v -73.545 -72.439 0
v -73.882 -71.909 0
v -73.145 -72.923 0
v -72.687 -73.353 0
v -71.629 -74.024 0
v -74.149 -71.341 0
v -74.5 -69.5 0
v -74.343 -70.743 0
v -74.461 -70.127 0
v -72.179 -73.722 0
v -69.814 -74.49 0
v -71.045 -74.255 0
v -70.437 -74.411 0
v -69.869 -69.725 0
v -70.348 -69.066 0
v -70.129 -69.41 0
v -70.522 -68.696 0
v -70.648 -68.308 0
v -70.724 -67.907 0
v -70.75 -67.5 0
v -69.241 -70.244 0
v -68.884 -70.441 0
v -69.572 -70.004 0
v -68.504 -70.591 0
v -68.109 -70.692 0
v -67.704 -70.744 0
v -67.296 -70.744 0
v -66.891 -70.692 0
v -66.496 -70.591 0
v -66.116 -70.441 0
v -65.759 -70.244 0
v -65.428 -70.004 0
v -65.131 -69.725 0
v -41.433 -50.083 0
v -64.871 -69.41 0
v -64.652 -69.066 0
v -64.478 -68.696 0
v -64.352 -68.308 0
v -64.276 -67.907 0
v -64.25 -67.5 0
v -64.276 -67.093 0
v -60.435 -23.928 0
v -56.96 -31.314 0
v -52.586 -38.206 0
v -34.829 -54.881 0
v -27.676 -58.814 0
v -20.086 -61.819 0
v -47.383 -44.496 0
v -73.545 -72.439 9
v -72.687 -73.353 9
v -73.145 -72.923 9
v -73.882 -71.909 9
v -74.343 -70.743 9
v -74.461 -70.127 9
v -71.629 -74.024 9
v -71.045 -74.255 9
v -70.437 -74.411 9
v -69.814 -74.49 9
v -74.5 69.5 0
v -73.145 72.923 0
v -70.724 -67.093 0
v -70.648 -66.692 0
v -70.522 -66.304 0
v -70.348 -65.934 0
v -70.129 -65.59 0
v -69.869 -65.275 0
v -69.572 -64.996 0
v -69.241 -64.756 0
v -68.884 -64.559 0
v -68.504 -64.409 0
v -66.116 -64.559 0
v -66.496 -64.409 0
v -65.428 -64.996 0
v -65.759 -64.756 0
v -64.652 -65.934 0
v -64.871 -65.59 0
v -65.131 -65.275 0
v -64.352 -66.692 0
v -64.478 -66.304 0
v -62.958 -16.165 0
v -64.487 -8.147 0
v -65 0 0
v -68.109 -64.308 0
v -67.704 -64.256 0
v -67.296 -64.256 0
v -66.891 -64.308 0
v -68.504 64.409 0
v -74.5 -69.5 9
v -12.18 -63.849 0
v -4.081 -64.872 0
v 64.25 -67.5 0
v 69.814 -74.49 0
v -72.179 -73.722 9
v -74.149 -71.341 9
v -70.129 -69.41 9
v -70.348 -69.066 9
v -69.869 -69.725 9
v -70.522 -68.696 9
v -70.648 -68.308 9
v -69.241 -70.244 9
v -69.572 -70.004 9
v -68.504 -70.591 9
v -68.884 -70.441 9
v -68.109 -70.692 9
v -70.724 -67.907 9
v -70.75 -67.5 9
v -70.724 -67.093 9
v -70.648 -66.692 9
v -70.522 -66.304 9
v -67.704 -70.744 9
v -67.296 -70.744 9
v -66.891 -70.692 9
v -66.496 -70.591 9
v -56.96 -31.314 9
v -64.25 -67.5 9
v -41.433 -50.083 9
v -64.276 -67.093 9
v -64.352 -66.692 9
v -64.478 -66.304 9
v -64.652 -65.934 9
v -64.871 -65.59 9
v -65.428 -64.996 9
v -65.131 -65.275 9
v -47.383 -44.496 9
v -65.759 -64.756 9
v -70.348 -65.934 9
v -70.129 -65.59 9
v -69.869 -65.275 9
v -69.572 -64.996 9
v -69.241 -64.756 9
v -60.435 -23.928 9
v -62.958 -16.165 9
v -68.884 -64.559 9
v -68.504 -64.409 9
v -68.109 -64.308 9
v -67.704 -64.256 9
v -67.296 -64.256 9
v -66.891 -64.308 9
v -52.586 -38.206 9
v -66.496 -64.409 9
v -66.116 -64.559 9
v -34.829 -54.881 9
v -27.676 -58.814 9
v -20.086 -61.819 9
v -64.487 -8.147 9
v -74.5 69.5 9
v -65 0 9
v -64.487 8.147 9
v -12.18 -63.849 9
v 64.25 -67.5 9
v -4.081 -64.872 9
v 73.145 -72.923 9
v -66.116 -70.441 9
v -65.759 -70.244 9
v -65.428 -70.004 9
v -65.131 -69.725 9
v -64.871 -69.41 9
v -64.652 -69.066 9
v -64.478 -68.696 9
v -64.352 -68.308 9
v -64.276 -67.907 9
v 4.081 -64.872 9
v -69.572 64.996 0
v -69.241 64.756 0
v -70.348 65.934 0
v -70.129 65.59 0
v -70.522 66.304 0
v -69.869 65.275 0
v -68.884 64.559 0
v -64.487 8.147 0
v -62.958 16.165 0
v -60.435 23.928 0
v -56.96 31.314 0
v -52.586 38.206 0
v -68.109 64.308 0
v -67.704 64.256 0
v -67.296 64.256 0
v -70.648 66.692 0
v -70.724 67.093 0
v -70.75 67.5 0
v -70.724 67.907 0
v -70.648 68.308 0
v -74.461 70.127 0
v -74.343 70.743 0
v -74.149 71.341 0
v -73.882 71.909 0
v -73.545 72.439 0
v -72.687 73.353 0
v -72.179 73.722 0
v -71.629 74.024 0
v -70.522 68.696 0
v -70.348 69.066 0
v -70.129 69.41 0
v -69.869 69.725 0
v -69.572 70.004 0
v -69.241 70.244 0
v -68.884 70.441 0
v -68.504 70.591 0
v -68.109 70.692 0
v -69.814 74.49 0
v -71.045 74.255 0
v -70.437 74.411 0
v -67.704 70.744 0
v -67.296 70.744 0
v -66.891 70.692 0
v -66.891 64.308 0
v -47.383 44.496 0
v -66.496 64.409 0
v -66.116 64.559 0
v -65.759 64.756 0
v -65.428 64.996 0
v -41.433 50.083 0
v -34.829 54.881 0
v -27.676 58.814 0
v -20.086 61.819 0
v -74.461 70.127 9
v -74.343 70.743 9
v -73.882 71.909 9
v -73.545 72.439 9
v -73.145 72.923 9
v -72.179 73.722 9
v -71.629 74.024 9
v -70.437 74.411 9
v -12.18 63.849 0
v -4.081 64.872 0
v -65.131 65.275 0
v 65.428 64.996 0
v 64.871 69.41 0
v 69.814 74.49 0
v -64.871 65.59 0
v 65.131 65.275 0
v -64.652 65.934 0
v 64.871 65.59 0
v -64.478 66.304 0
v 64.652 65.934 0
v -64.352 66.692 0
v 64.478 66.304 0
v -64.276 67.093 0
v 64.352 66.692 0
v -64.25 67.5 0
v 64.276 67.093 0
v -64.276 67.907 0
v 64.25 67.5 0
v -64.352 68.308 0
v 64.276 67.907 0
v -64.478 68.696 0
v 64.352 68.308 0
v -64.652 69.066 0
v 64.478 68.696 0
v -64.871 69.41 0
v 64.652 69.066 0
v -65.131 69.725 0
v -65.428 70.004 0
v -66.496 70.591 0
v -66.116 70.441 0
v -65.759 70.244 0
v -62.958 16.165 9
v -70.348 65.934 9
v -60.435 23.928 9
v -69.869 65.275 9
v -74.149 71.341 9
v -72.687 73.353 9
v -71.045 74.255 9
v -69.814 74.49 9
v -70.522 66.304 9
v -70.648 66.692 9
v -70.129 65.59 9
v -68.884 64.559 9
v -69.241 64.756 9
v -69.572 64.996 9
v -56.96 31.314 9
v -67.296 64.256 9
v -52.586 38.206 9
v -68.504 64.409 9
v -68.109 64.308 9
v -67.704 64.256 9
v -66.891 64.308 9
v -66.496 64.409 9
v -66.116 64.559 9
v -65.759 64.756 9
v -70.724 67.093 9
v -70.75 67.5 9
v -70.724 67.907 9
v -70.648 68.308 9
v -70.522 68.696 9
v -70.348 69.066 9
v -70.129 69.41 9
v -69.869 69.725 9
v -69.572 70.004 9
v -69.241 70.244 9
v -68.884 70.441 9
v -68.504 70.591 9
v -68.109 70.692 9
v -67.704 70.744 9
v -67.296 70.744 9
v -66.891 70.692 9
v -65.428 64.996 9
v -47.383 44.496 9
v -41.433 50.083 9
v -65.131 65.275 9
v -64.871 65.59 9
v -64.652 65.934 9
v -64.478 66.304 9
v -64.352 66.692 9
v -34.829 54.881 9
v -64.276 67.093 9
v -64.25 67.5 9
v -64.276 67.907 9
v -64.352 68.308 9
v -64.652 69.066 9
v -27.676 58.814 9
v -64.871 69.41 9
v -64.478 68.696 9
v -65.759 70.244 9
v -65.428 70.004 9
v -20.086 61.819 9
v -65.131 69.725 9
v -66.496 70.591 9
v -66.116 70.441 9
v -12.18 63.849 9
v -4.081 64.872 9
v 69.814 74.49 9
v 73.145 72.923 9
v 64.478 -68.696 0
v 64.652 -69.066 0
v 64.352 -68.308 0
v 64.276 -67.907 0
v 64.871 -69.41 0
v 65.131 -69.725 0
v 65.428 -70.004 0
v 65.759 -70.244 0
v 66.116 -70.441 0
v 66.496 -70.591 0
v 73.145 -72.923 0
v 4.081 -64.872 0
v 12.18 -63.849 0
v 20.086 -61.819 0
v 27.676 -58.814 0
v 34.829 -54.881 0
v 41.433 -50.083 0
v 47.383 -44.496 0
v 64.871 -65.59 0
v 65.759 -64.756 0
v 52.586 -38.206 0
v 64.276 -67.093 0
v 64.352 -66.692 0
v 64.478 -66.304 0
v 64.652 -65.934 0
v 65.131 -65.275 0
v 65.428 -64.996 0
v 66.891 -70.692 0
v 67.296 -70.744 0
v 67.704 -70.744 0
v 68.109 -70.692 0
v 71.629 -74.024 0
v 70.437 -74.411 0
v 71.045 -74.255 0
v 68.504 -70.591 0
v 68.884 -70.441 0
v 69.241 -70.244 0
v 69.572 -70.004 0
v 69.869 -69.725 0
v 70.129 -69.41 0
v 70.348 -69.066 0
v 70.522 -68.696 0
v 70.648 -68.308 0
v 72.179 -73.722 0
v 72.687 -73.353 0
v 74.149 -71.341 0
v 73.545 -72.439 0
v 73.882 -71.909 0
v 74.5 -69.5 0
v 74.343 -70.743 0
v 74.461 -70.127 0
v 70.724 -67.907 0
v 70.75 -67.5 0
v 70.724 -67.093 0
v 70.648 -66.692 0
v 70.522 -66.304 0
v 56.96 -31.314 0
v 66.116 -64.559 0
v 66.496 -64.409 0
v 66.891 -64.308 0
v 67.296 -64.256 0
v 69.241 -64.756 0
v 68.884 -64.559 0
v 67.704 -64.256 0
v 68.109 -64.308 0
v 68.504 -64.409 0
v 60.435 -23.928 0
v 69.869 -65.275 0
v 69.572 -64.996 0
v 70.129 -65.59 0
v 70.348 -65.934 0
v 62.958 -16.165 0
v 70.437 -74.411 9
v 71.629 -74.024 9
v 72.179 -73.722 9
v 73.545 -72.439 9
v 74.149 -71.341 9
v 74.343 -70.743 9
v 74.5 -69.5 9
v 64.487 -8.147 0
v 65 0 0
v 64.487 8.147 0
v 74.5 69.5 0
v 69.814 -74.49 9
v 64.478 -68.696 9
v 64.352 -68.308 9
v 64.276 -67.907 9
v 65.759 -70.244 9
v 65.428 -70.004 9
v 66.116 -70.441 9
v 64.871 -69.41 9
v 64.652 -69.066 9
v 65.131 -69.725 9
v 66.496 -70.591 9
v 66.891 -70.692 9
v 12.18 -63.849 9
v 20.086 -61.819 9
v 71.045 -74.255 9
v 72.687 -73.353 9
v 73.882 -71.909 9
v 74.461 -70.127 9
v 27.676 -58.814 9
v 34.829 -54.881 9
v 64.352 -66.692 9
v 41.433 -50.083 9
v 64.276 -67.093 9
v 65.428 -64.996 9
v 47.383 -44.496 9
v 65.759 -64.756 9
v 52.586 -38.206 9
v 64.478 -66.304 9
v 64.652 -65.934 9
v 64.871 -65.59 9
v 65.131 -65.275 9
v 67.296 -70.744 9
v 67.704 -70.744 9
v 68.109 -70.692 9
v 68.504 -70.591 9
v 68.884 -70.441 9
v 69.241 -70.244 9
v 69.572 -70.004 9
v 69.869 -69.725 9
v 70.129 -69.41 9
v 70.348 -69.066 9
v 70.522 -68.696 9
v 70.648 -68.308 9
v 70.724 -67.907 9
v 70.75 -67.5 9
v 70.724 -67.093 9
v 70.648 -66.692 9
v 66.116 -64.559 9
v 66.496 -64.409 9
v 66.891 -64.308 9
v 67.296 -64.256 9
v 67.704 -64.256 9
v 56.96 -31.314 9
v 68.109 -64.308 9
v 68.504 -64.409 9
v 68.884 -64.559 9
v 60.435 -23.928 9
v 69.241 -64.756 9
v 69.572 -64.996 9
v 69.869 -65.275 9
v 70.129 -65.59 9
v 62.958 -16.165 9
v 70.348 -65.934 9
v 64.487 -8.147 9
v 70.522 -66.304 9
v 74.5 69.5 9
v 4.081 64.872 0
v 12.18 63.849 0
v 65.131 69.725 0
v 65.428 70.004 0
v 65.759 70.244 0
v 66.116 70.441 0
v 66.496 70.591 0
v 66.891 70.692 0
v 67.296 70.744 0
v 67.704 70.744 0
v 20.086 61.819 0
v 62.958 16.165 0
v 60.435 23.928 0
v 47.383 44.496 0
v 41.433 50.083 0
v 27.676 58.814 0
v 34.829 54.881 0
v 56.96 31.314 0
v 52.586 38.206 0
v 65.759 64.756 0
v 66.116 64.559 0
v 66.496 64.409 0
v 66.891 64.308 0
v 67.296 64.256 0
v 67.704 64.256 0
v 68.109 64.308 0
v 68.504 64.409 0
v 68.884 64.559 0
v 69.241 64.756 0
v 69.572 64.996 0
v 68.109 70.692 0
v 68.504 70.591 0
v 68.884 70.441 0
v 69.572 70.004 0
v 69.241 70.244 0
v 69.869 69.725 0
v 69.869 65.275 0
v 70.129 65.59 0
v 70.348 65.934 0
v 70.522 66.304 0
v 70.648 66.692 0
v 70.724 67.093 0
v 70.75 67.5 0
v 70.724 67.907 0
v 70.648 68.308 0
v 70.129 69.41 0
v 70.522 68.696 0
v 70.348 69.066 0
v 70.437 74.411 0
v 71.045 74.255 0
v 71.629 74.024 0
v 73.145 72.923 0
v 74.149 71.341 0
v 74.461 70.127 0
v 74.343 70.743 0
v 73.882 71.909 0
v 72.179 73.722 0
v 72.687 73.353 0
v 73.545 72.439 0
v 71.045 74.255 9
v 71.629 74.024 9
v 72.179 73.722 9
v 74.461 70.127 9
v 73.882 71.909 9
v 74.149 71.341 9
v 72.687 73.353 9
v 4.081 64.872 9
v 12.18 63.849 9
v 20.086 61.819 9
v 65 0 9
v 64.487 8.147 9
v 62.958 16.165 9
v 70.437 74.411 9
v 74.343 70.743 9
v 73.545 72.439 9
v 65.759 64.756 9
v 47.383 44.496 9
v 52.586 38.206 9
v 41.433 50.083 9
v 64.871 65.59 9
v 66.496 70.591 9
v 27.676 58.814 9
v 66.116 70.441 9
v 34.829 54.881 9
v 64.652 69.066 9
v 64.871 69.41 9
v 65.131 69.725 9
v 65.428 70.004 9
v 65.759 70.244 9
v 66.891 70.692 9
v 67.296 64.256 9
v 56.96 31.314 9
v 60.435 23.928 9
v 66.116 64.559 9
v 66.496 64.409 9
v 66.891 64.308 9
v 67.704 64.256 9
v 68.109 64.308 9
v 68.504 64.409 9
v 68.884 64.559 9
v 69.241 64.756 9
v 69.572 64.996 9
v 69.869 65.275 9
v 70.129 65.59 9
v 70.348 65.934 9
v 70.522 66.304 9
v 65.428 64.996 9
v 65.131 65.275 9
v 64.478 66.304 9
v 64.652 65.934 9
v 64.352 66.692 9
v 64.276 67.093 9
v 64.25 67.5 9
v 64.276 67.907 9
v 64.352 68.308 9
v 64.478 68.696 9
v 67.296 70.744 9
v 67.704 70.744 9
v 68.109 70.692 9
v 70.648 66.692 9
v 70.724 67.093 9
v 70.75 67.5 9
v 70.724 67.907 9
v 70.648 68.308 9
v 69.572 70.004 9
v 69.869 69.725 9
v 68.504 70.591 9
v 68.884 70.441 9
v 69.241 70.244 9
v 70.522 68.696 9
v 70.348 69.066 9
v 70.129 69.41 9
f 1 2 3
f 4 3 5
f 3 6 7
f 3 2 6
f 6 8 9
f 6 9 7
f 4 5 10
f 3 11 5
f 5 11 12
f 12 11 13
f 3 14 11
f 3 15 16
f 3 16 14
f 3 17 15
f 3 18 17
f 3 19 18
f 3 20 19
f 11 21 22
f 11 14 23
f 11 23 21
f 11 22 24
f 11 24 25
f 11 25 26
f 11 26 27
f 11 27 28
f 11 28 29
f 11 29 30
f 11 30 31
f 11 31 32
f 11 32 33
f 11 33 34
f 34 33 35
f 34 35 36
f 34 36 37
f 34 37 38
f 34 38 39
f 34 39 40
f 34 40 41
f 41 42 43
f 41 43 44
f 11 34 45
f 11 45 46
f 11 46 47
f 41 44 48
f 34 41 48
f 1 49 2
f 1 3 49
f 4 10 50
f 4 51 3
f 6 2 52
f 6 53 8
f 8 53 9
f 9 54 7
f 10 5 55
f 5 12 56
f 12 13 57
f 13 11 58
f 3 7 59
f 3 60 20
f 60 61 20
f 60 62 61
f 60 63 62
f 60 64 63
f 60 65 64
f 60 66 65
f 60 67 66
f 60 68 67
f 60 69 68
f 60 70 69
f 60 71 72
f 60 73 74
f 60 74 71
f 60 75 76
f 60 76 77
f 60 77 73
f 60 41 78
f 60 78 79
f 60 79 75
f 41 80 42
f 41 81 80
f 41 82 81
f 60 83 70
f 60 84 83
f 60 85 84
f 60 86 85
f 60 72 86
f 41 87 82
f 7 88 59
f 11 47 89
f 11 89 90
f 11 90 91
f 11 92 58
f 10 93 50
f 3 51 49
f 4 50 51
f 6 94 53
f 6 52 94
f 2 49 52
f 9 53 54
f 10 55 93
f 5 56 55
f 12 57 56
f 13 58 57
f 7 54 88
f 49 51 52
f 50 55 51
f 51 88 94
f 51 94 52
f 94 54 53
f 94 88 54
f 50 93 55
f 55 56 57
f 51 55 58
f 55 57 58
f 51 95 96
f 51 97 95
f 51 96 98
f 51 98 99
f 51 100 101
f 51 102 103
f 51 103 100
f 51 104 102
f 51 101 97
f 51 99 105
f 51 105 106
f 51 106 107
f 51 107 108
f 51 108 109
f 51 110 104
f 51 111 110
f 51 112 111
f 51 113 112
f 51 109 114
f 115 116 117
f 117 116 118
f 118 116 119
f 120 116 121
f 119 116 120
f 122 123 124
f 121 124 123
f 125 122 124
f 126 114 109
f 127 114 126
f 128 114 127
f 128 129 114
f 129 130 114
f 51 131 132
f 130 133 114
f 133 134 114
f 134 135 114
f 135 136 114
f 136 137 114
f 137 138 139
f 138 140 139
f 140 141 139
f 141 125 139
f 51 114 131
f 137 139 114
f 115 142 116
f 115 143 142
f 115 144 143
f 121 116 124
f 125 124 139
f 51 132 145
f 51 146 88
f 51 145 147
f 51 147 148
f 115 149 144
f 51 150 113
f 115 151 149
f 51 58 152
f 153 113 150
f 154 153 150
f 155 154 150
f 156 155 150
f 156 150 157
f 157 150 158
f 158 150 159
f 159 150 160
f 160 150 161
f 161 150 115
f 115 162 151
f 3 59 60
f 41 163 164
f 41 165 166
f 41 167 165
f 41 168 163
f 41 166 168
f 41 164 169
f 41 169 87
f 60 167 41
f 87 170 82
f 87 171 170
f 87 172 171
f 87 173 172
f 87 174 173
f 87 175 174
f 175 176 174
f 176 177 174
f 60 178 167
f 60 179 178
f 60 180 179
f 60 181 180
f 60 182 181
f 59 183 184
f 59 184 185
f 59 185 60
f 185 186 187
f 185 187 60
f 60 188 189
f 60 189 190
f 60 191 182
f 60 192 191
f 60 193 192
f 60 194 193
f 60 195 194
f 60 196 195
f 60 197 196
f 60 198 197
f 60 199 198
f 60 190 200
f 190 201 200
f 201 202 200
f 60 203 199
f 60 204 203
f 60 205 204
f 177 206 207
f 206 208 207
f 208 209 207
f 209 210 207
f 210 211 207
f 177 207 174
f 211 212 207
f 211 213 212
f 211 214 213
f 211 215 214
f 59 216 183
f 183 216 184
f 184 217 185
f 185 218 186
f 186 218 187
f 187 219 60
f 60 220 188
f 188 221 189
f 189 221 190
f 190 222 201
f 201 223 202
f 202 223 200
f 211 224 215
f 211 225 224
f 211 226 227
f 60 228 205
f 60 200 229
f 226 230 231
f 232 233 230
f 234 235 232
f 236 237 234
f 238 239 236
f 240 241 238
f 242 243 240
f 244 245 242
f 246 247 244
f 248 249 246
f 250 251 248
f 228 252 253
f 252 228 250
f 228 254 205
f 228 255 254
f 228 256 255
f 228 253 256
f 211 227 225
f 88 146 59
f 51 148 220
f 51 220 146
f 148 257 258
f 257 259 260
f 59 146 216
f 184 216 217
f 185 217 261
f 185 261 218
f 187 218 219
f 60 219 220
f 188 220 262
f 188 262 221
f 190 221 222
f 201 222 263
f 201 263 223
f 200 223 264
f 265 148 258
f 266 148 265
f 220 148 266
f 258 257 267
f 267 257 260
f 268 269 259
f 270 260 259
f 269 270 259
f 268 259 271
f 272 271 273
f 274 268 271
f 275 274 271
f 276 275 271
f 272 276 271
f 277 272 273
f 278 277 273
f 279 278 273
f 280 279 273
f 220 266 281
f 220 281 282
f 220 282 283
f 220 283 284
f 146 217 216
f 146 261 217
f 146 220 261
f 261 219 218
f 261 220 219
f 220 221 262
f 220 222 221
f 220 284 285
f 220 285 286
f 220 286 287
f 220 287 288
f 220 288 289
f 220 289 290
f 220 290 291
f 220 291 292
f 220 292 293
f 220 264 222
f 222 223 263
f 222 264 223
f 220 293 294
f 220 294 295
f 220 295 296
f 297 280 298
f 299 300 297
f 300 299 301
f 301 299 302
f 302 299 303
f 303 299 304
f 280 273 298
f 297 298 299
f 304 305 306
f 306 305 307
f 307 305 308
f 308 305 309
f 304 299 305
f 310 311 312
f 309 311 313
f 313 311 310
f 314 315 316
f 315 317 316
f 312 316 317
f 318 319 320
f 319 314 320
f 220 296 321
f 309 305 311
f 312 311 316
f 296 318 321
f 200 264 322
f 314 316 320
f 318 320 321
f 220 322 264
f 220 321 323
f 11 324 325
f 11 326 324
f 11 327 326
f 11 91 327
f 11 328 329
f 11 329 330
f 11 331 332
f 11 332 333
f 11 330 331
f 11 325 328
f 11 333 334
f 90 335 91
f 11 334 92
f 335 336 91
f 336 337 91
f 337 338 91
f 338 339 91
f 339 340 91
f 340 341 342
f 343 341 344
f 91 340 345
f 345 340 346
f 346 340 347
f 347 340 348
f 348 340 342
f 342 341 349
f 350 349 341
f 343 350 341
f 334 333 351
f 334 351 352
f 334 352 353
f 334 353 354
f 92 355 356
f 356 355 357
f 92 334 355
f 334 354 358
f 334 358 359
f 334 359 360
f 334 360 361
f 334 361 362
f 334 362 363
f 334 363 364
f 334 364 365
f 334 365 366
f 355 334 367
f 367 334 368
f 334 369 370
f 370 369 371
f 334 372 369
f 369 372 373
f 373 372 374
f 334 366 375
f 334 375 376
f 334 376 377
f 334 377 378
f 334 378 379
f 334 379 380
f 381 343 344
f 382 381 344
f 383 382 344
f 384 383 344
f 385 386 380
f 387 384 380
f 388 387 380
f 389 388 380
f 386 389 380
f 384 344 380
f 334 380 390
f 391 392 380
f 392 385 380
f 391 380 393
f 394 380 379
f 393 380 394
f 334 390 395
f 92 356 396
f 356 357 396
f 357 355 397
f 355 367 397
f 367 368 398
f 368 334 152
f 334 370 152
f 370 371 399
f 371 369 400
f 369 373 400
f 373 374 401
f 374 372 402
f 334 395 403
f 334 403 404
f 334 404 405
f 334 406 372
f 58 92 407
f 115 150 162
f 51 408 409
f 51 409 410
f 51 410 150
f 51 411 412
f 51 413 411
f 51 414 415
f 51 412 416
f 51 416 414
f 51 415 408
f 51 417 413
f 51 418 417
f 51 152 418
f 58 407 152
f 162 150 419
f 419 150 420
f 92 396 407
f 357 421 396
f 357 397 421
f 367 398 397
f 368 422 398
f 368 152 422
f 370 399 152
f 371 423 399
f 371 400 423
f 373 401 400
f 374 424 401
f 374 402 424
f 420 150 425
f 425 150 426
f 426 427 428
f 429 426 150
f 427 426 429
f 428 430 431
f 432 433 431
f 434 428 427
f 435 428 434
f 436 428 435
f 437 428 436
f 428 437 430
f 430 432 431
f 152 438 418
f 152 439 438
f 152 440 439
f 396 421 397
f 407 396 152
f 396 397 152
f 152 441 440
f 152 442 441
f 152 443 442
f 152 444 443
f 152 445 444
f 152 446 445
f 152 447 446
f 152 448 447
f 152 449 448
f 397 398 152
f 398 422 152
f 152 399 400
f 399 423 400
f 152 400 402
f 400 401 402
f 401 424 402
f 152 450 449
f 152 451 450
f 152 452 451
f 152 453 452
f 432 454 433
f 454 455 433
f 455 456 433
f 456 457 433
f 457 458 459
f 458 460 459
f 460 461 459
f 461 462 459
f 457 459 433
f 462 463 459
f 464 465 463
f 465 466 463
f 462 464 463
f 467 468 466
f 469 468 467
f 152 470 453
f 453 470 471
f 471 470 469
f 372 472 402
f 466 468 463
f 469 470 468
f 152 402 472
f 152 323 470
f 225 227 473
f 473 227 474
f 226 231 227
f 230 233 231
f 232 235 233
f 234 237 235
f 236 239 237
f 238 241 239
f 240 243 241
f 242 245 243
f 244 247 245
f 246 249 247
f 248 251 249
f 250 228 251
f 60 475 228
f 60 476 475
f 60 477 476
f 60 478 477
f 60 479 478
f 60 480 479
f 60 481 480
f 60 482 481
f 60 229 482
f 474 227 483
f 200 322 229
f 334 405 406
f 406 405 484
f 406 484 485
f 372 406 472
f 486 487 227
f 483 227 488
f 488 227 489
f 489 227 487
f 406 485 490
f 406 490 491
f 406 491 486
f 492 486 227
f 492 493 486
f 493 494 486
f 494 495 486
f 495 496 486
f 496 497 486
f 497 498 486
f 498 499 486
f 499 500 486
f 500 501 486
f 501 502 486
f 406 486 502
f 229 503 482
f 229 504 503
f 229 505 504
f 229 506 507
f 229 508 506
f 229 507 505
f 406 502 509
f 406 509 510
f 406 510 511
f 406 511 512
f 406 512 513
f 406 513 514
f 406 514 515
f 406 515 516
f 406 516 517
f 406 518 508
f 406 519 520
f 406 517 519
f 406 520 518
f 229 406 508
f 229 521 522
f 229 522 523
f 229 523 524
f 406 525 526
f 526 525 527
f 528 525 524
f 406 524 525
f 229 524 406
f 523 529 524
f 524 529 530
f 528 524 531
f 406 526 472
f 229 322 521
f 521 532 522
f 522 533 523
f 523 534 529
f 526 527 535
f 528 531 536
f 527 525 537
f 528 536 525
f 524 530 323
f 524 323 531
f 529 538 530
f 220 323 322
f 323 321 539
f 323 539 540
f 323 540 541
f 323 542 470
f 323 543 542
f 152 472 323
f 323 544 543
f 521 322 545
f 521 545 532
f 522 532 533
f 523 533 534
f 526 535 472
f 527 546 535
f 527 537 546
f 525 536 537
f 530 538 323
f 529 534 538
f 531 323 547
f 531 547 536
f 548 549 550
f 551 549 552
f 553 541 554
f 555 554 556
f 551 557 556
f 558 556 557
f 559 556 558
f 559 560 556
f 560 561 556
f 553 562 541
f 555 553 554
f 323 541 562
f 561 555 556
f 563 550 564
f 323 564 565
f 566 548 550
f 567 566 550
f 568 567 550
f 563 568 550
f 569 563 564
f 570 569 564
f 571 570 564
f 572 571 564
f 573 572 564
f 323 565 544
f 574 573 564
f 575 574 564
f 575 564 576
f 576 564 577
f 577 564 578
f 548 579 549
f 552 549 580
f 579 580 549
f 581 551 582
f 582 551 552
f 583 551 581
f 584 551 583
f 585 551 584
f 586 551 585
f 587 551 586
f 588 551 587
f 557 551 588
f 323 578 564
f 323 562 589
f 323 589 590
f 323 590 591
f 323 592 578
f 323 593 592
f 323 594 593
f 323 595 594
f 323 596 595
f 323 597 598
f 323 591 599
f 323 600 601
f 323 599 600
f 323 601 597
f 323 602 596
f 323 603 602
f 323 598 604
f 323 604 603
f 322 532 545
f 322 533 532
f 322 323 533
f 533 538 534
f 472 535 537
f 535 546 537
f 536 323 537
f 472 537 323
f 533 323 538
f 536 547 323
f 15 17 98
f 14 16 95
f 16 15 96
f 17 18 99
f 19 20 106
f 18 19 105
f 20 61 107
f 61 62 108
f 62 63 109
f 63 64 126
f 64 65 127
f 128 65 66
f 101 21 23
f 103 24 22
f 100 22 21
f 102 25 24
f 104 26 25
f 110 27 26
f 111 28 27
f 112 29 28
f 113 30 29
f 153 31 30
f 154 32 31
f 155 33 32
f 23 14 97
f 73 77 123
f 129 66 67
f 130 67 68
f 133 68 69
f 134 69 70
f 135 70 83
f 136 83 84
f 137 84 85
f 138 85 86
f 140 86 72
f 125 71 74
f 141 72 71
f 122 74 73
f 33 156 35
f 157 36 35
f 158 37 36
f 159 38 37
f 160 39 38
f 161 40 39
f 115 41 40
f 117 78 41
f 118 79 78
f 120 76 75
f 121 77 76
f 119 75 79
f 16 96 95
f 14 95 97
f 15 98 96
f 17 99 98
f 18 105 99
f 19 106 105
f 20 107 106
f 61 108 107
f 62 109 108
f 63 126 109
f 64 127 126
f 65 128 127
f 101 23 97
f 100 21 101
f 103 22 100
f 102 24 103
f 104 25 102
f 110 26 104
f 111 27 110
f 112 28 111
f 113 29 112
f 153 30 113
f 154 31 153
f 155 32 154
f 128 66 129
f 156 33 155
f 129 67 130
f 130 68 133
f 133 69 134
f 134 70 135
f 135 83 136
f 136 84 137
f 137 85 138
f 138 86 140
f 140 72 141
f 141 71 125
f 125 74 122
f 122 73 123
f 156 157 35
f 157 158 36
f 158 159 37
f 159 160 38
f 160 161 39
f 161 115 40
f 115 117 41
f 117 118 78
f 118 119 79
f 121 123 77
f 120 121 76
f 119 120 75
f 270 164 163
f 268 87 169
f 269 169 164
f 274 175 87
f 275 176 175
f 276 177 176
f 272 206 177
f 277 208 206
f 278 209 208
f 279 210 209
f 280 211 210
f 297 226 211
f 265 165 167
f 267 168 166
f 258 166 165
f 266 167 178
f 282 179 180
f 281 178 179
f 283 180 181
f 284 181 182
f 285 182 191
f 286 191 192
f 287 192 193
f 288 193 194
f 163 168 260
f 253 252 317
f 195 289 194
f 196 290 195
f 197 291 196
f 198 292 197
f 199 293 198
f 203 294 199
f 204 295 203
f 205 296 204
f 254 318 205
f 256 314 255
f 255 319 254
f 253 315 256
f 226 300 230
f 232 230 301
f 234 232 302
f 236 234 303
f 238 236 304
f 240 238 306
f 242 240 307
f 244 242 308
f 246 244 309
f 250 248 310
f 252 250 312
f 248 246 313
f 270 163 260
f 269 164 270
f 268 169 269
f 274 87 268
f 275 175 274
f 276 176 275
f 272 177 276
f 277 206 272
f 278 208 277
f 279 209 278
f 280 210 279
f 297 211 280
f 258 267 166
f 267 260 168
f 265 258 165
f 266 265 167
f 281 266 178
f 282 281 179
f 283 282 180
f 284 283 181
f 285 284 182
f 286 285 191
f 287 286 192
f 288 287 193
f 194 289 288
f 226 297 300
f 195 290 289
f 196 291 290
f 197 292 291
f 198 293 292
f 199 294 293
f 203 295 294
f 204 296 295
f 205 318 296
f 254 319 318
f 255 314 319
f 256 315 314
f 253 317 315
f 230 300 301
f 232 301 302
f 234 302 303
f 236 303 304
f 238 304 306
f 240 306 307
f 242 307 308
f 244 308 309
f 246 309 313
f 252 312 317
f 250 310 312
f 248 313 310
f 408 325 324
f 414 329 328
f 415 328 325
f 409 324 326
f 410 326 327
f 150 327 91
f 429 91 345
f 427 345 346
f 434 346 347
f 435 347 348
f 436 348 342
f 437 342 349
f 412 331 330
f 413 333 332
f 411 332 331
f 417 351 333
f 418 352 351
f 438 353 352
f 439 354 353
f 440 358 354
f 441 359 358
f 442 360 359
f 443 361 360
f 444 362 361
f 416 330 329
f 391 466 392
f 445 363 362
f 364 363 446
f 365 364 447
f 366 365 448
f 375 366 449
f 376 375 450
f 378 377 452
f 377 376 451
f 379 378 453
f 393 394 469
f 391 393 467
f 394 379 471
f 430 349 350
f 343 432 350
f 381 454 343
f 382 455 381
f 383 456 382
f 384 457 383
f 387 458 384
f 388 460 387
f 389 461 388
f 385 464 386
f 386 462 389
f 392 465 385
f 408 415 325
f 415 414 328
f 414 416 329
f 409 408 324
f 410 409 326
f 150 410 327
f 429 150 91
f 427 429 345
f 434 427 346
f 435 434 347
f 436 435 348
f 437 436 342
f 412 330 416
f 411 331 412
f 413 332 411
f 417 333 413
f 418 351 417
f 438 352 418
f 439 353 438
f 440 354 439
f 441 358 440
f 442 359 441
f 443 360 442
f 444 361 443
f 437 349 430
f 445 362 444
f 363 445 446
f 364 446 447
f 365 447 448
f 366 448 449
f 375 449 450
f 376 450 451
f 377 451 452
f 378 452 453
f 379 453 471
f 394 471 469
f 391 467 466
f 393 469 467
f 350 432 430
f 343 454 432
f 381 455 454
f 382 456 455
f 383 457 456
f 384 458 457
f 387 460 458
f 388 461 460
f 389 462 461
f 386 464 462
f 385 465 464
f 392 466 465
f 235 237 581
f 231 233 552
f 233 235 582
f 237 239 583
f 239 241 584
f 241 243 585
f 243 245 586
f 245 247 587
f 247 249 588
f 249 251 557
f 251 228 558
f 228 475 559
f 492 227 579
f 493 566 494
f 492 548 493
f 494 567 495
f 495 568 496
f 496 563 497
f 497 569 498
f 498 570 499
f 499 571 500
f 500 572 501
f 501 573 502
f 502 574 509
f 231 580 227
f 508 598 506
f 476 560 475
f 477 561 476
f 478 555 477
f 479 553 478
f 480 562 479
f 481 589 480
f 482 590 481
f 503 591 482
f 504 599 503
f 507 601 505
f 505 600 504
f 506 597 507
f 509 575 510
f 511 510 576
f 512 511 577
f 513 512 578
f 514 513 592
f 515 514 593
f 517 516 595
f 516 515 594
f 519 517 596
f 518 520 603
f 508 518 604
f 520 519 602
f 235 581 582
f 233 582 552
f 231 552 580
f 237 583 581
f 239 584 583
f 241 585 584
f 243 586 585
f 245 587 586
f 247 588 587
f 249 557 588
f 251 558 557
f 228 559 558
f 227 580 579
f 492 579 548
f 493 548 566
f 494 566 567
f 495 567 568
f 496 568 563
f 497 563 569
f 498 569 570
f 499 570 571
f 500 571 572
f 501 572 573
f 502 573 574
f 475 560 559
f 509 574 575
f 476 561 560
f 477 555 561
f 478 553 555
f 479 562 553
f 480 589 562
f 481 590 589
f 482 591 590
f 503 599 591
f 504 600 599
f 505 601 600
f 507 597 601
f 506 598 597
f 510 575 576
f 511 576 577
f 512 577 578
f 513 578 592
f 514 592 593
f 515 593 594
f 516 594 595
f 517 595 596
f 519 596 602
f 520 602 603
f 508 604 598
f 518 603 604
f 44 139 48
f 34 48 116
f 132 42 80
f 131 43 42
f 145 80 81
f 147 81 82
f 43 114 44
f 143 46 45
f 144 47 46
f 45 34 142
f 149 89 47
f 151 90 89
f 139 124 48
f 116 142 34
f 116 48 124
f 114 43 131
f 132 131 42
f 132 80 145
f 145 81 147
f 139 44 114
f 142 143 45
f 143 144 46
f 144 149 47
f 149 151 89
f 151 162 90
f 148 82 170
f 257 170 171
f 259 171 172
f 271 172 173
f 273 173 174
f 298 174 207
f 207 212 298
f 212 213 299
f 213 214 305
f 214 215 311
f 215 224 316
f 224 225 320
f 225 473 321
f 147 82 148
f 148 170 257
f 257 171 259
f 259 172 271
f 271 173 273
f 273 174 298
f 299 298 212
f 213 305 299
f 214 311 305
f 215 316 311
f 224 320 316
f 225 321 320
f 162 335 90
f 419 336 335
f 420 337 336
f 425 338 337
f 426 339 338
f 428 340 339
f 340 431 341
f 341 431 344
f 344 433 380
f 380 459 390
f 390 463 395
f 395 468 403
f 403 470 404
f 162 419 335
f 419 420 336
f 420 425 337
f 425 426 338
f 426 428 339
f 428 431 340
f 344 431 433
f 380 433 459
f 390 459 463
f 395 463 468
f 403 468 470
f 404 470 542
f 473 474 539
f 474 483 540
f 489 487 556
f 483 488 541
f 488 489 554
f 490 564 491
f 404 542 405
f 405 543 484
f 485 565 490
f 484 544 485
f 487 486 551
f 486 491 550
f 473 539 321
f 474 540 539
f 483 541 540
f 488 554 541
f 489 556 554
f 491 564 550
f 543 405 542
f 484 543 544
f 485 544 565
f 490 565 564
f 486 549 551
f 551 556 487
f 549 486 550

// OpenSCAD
$fn = 50;

difference() {
	union() {
		hull() {
			translate(v = [-69.5, 69.5, 0]) {
				cylinder(h = 9, r = 5);
			}
			translate(v = [69.5, 69.5, 0]) {
				cylinder(h = 9, r = 5);
			}
			translate(v = [-69.5, -69.5, 0]) {
				cylinder(h = 9, r = 5);
			}
			translate(v = [69.5, -69.5, 0]) {
				cylinder(h = 9, r = 5);
			}
		}
	}
	union() {
		translate(v = [-67.5, -67.5, -100.0]) {
			cylinder(h = 200, r = 3.25);
		}
		translate(v = [-67.5, 67.5, -100.0]) {
			cylinder(h = 200, r = 3.25);
		}
		translate(v = [67.5, -67.5, -100.0]) {
			cylinder(h = 200, r = 3.25);
		}
		translate(v = [67.5, 67.5, -100.0]) {
			cylinder(h = 200, r = 3.25);
		}
		translate(v = [-67.5, -67.5, -100.0]) {
			cylinder(h = 200, r = 1.8);
		}
		translate(v = [-67.5, 67.5, -100.0]) {
			cylinder(h = 200, r = 1.8);
		}
		translate(v = [67.5, -67.5, -100.0]) {
			cylinder(h = 200, r = 1.8);
		}
		translate(v = [67.5, 67.5, -100.0]) {
			cylinder(h = 200, r = 1.8);
		}
		cylinder(h = 9, r = 65.0);
	}
}
